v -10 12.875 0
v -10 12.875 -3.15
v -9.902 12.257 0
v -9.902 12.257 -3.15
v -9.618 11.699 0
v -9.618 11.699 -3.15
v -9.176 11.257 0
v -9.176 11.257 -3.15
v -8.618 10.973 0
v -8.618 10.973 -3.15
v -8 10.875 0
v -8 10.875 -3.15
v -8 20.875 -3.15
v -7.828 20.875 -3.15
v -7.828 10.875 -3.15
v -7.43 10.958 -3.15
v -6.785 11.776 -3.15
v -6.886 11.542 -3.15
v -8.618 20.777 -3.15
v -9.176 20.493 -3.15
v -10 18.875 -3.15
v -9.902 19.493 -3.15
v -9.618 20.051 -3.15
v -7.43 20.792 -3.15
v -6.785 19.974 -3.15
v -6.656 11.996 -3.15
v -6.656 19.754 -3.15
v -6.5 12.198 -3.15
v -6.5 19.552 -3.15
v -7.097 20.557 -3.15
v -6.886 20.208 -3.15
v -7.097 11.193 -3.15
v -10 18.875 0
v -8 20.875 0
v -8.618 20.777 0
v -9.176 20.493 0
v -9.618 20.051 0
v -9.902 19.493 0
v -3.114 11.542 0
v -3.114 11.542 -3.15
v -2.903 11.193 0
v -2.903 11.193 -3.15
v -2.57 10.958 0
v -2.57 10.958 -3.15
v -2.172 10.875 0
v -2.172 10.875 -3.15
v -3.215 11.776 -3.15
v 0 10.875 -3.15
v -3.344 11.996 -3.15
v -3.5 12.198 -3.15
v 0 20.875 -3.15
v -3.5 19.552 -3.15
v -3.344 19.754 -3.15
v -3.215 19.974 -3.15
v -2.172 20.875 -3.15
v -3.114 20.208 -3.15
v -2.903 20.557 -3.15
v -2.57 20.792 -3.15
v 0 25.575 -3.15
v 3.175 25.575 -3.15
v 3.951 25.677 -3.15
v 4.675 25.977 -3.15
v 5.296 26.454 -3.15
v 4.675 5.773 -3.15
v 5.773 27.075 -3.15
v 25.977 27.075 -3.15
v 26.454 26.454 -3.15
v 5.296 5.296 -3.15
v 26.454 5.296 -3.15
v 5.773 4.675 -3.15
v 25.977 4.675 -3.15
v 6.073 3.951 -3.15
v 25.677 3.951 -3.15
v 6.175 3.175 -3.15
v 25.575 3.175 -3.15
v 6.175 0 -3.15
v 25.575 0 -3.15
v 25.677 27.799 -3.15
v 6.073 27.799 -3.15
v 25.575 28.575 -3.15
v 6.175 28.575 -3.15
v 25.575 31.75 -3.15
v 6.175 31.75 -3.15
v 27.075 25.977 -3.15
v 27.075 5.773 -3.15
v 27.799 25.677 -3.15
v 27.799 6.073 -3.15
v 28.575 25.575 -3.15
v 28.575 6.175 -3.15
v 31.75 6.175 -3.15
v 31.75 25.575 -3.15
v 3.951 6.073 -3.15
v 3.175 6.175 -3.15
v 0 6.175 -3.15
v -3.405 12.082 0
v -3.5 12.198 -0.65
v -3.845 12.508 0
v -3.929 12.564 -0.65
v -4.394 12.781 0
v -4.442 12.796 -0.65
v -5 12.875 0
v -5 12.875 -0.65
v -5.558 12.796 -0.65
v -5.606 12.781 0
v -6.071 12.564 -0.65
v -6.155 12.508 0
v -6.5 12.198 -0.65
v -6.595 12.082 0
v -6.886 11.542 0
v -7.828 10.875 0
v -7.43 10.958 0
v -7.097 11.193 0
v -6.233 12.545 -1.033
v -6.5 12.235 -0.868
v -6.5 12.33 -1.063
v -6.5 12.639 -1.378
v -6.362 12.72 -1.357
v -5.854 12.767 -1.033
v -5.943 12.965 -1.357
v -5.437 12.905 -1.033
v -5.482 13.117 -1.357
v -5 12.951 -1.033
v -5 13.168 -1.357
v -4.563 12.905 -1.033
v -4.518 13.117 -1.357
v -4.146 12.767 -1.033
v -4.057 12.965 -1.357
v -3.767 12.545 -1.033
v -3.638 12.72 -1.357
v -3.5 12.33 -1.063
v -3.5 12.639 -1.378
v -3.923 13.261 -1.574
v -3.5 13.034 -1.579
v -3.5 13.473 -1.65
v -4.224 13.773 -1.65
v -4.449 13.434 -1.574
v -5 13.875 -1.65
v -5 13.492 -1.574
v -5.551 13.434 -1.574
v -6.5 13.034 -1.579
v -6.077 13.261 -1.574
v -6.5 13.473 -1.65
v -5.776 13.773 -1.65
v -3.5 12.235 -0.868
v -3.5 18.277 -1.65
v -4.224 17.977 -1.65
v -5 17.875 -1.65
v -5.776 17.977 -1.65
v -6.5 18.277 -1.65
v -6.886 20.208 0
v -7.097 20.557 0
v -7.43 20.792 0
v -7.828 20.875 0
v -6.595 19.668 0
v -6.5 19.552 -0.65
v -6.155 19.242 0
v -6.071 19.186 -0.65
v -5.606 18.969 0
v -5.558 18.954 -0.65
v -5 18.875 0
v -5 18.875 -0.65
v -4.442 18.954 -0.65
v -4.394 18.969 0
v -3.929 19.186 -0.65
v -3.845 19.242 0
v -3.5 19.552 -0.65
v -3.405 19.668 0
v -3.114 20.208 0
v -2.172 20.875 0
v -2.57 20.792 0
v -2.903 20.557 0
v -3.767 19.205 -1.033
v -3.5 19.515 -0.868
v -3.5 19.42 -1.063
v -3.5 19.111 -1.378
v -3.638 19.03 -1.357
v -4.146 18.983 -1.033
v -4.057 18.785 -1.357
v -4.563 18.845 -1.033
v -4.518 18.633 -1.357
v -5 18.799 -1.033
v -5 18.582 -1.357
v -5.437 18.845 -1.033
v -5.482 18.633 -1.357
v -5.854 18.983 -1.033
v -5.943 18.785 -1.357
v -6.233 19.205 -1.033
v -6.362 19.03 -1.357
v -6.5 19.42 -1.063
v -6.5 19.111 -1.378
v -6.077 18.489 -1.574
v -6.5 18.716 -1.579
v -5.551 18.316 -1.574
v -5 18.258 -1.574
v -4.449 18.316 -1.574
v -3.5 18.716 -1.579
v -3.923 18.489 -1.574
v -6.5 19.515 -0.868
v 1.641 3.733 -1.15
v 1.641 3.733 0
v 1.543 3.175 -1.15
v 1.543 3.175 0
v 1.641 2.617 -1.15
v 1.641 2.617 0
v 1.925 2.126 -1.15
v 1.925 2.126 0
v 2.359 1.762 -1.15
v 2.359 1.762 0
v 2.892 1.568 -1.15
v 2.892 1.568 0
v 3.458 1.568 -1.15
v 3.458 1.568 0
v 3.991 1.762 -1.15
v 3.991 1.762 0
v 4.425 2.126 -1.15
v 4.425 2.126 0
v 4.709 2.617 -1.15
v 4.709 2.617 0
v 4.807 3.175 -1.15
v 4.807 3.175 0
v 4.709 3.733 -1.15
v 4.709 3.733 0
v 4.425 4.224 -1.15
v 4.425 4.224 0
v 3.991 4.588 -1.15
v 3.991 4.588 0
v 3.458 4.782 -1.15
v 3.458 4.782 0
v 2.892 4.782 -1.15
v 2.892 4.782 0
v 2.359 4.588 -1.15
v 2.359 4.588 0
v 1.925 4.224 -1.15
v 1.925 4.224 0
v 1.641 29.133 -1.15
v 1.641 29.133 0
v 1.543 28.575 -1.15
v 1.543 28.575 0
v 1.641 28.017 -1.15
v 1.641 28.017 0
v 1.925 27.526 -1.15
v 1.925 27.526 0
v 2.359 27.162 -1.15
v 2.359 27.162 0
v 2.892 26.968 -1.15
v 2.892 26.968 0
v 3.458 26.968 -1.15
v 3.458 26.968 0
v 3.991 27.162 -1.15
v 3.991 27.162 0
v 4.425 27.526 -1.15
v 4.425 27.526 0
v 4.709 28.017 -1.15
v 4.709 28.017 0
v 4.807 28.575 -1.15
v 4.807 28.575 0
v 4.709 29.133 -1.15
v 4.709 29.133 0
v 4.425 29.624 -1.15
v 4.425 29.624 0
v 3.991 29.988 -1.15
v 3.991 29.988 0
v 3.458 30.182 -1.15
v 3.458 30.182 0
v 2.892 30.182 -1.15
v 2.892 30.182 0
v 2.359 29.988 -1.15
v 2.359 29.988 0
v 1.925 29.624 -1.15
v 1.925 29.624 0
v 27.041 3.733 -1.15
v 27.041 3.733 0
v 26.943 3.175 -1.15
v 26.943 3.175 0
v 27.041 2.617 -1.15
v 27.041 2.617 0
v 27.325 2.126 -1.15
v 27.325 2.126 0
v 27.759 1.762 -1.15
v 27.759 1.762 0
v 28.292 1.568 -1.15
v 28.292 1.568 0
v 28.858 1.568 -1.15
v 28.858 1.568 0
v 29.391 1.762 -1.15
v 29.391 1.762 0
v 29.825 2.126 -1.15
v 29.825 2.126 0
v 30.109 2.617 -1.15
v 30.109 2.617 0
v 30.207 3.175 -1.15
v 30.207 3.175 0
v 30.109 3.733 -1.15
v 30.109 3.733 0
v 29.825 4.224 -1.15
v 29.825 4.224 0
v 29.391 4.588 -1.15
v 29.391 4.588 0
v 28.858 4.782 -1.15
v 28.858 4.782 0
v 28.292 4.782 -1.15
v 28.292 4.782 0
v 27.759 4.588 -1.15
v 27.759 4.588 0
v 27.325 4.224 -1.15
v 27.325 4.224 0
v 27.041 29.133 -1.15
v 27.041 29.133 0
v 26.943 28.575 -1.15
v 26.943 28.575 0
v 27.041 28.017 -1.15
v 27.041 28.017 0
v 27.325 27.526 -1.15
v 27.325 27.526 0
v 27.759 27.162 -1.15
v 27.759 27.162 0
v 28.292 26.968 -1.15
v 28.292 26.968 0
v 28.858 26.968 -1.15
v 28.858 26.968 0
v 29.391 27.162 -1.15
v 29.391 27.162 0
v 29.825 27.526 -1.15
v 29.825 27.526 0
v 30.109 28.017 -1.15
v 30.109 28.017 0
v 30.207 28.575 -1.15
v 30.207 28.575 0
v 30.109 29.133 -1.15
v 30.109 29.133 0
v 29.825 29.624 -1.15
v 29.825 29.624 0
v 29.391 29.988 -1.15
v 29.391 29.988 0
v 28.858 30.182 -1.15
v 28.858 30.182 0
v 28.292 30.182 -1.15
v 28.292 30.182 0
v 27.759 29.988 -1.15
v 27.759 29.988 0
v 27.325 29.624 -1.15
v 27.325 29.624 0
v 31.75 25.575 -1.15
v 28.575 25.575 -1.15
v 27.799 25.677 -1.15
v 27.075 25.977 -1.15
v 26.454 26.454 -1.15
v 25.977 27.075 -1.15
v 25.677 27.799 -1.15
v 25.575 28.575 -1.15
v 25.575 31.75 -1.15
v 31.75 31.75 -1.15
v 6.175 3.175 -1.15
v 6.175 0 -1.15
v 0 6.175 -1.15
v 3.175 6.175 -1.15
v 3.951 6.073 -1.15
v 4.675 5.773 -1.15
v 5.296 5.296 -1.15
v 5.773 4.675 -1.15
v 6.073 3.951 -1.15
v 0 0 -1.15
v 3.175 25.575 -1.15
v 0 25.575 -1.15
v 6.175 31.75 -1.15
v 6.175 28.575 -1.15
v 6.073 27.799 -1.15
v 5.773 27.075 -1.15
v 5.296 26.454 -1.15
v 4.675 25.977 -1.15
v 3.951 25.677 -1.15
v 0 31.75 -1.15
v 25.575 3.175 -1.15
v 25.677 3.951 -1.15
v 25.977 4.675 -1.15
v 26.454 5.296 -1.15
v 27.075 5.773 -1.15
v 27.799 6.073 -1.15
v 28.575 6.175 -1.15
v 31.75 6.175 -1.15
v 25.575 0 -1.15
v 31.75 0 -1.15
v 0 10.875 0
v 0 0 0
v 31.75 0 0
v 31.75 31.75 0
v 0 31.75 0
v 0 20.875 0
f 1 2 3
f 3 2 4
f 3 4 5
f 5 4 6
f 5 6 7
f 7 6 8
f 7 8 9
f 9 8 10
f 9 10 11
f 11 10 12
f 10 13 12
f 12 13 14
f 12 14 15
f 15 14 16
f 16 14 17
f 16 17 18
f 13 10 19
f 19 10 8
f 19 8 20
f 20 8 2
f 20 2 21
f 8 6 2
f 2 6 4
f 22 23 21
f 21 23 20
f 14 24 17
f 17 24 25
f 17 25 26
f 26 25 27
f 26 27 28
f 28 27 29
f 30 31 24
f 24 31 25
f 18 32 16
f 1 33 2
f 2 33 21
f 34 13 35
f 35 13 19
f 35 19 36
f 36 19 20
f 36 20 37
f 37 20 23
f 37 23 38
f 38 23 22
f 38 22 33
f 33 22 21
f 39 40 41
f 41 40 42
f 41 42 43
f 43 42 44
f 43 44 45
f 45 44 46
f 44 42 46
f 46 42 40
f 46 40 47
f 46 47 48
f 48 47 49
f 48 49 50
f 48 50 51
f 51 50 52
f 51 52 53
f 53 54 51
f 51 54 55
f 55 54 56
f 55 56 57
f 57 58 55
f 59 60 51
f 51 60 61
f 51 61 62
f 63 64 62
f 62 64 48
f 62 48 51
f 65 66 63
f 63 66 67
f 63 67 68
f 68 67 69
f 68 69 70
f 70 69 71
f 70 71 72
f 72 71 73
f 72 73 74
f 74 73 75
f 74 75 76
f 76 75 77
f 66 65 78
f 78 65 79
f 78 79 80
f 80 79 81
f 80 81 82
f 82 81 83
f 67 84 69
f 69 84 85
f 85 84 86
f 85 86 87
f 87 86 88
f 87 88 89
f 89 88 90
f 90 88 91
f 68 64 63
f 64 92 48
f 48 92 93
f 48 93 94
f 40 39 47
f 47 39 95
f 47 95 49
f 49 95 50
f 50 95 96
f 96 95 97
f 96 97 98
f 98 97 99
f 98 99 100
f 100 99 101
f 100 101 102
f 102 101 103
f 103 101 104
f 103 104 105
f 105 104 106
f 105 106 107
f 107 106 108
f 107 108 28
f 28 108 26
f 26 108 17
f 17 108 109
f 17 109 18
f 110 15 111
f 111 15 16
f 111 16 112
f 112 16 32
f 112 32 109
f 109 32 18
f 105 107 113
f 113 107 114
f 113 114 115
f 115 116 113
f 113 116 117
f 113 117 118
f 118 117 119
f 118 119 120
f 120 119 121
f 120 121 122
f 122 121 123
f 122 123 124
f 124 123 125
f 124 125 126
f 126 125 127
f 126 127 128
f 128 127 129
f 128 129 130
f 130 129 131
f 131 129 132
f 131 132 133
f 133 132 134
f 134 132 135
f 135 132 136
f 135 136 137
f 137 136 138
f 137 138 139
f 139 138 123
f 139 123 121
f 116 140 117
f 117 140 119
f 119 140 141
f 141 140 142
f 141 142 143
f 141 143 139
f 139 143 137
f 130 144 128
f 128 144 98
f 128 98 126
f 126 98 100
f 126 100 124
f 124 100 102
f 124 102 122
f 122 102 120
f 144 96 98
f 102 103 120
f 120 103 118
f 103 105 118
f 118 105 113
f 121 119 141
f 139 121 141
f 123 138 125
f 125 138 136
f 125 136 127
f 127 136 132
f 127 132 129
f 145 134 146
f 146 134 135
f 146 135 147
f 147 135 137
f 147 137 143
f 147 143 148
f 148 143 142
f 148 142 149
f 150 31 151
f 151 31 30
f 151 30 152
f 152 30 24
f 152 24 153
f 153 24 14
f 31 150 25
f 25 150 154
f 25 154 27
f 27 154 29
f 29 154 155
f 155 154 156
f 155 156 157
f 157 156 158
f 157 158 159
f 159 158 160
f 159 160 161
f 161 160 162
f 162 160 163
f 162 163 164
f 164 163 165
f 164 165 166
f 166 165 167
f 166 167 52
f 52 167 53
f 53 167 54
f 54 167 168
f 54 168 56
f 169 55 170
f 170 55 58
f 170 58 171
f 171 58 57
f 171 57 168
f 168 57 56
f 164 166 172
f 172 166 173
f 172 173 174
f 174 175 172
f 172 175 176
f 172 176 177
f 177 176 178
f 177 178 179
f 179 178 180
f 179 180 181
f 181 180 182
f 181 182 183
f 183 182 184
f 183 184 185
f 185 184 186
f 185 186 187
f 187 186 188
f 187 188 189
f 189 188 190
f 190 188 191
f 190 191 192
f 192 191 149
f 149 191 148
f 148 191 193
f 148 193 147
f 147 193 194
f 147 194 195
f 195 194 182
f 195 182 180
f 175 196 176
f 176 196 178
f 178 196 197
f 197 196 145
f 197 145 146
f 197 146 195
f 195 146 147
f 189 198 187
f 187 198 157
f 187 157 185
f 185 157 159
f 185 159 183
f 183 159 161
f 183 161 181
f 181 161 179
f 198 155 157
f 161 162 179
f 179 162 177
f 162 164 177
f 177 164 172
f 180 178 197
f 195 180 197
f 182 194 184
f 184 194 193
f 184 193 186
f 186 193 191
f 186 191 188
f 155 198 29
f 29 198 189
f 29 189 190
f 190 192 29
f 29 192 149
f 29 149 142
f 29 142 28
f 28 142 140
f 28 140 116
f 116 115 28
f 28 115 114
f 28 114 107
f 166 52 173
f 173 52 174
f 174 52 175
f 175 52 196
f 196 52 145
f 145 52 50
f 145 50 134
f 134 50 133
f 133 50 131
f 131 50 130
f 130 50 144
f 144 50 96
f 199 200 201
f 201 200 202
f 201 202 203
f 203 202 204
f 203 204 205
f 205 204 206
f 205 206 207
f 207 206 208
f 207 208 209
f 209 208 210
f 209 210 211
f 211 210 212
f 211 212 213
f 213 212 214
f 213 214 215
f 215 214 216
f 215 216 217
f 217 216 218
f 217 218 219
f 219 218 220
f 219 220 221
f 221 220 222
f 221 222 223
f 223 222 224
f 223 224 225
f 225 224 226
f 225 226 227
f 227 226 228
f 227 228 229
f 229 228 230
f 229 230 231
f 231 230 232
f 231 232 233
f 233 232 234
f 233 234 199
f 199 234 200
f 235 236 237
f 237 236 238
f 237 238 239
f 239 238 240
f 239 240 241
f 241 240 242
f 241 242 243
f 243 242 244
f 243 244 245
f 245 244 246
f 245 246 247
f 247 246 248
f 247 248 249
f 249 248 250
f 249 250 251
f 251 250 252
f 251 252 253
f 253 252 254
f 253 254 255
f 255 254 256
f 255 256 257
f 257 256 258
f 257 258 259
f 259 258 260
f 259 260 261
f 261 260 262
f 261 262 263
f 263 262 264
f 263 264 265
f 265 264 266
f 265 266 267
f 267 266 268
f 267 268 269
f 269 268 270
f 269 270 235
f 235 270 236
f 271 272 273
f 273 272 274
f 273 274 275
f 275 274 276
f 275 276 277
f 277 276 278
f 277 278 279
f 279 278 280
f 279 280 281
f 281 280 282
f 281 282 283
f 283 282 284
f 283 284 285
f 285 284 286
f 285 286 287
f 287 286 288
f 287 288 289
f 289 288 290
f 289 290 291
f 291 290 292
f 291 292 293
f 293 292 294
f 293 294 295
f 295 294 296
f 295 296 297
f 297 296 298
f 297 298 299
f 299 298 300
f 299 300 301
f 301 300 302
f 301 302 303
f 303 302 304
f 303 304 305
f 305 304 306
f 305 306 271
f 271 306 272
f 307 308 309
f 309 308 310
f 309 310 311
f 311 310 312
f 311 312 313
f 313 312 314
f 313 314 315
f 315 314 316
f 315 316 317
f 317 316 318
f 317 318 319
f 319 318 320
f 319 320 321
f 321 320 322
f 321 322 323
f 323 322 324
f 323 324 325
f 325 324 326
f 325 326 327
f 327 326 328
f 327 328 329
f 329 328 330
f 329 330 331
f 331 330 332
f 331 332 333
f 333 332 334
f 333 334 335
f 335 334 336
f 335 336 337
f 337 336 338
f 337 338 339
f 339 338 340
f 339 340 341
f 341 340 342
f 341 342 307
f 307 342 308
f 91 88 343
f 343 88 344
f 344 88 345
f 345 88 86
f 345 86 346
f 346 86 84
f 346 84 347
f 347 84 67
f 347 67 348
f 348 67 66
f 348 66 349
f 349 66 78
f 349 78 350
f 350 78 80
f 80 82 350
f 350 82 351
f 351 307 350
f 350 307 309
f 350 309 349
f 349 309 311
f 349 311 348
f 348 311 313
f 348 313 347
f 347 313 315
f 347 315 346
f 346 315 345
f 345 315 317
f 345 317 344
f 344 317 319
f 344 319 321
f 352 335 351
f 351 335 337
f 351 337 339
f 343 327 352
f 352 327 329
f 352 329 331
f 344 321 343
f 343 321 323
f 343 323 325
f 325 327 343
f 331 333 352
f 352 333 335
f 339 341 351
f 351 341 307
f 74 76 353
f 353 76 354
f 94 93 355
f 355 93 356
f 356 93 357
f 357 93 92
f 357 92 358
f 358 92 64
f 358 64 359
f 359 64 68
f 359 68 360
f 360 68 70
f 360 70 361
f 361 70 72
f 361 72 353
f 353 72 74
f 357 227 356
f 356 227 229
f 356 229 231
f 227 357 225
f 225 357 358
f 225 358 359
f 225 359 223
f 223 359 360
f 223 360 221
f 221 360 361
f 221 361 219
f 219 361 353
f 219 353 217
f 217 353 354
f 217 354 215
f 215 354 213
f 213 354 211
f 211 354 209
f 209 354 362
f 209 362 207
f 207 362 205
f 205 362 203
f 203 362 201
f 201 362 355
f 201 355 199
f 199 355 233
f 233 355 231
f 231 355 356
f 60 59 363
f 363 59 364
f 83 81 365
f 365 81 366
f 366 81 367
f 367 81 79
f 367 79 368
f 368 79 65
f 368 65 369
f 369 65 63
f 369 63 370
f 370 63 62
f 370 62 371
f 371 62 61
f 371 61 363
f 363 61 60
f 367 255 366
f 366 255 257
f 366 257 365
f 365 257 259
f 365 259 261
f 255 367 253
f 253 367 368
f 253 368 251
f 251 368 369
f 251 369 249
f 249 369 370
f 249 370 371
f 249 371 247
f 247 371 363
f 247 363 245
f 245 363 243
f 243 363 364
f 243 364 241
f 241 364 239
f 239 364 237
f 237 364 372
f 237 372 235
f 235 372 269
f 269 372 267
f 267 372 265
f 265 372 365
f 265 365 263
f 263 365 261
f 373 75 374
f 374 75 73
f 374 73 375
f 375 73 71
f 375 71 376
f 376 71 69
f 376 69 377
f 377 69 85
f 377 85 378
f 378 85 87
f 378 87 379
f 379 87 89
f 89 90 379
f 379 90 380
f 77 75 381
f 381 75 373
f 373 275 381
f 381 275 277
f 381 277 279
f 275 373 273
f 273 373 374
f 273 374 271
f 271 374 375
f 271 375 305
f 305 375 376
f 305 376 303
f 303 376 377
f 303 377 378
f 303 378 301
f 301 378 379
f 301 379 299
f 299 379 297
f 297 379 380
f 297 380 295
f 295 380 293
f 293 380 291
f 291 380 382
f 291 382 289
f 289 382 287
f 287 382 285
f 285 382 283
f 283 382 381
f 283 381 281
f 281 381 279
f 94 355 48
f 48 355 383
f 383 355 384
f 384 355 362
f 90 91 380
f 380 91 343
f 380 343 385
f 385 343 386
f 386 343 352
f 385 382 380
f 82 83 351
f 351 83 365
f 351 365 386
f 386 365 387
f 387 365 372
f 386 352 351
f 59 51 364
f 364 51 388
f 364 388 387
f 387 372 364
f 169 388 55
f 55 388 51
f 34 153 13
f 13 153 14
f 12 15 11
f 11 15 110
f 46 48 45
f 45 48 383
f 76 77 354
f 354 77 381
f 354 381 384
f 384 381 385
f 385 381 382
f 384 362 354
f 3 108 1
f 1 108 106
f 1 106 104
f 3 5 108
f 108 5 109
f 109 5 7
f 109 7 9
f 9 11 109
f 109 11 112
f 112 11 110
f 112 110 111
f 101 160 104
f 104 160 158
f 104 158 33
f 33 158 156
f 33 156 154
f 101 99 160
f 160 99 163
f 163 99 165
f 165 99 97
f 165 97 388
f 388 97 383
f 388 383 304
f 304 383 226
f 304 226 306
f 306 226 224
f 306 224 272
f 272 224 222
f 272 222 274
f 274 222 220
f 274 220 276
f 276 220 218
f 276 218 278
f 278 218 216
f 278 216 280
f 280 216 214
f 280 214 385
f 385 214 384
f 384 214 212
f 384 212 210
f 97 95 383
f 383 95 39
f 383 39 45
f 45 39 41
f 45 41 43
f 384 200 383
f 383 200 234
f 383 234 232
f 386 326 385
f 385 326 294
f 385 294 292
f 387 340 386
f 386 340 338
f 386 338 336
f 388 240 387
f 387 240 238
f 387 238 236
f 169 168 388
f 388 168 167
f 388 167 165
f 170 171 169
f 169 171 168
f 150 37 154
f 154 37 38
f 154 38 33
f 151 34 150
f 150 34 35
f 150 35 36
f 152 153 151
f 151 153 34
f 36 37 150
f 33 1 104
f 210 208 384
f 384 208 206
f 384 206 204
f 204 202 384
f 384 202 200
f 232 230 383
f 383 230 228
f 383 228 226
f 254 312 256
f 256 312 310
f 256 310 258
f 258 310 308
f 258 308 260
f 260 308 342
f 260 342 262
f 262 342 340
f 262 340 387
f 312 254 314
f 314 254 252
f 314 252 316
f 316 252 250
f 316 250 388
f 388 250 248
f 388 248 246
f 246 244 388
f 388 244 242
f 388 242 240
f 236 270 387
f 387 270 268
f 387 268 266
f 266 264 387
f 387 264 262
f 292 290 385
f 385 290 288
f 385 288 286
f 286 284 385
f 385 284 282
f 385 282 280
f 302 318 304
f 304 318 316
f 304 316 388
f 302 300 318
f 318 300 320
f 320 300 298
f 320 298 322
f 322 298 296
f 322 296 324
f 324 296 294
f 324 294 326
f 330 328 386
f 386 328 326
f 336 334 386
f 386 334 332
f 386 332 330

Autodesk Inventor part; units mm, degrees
ref_plane "YZ Plane" through (0, 0, 0) normal (1, 0, 0) x (0, 1, 0)
ref_plane "XZ Plane" through (0, 0, 0) normal (0, 1, 0) x (-1, 0, 0)
ref_plane "XY Plane" through (0, 0, 0) normal (0, 0, 1) x (1, 0, 0)
sketch "Sketch1" plane through (0, 0, 0) normal (0, 0, 1) x (1, 0, 0)
  line L0 (0, 0) -> (31.75, 0)
  line L1 (31.75, 0) -> (31.75, 31.75)
  line L2 (31.75, 31.75) -> (0, 31.75)
  line L3 (0, 31.75) -> (0, 0)
  line L4 (0, 0) -> (0, 31.75)
  line L5 (0, 20.875) -> (-10, 20.875)
  line L6 (-10, 20.875) -> (-10, 10.875)
  line L7 (-10, 10.875) -> (0, 10.875)
  line L8 (0, 10.875) -> (0, 20.875)
  circle A0 centre (-5, 20.875) radius 2
  circle A1 centre (-5, 10.875) radius 2
  point P0 (-10, 15.875)
  point P1 (0, 15.875)
  point P2 (-7, 10.875)
  point P3 (-3, 10.875)
  point P4 (-3, 20.875)
  point P5 (-7, 20.875)
  dimension "d0" = 31.75
  dimension "d1" = 31.75
  dimension "d19" = 10
  dimension "d20" = 4
  dimension "d21" = 4
  dimension "d22" = 10
  dimension "d23" = 0
extrude "Extrusion1" add sketch "Sketch1" against normal blind 3.15 contours L3 L2 L1 L0 | L7 A1 L6 L5 A0 L3
sketch "Sketch2" plane through (0, 0, -3.15) normal (0, 0, -1) x (-1, 0, 0)
  circle A0 centre (-28.575, 28.575) radius 1.632
  circle A1 centre (-28.575, 28.575) radius 3
  line L0 (-28.575, 28.575) -> (-3.175, 28.575) construction
  line L1 (-3.175, 28.575) -> (-3.175, 3.175) construction
  line L2 (-3.175, 3.175) -> (-28.575, 3.175) construction
  line L3 (-28.575, 3.175) -> (-28.575, 28.575) construction
  line L4 (-31.75, 31.75) -> (-31.75, 0) projected
  line L5 (0, 31.75) -> (-31.75, 31.75) projected
  line L6 (-25.575, 28.575) -> (-25.575, 31.75)
  line L7 (-28.575, 25.575) -> (-31.75, 25.575)
  line L8 (-15.875, 28.575) -> (-15.875, 3.175) construction
  line L9 (-3.175, 15.875) -> (-28.575, 15.875) construction
  line L10 (-25.575, 3.175) -> (-25.575, 0)
  circle A2 centre (-28.575, 3.175) radius 1.632
  circle A3 centre (-28.575, 3.175) radius 3
  line L11 (-28.575, 6.175) -> (-31.75, 6.175)
  line L12 (-3.175, 6.175) -> (0, 6.175)
  circle A4 centre (-3.175, 3.175) radius 1.632
  circle A5 centre (-3.175, 3.175) radius 3
  line L13 (-6.175, 3.175) -> (-6.175, 0)
  line L14 (-6.175, 28.575) -> (-6.175, 31.75)
  circle A6 centre (-3.175, 28.575) radius 1.632
  circle A7 centre (-3.175, 28.575) radius 3
  line L15 (-3.175, 25.575) -> (0, 25.575)
  line L16 (-31.75, 0) -> (0, 0) projected
  line L17 (0, 20.875) -> (0, 31.75) projected
  line L18 (0, 0) -> (0, 10.875) projected
  point P0 (-31.75, 15.875)
  point P1 (10, 31.75)
  point P2 (-15.875, 15.875)
  point P3 (-15.875, 15.875)
  point P4 (10, 0)
  dimension "d5" = 3.2639
  dimension "d6" = 6
  dimension "d7" = 25.4
  dimension "d8" = 25.4
  dimension "d9" = 3.175
  dimension "d10" = 3.175
  dimension "d13" = 360
extrude "Extrusion2" cut sketch "Sketch2" against normal blind 2
extrude "Extrusion3" cut sketch "Sketch2" against normal through all contours A0 | A2 | A4 | A6
sketch "Sketch3" plane through (0, 0, -3.15) normal (0, 0, -1) x (-1, 0, 0)
  line L0 (3.5, 20.875) -> (6.5, 20.875)
  line L1 (6.5, 20.875) -> (6.5, 10.875)
  line L2 (6.5, 10.875) -> (3.5, 10.875)
  line L3 (3.5, 10.875) -> (3.5, 20.875)
  line L4 (7, 10.875) -> (10, 10.875) projected
  point P0 (0, 0)
  point P1 (3, 20.875)
  point P2 (3, 10.875)
  dimension "d26" = 0.5
  dimension "d27" = 0.5
  dimension "d28" = 3
extrude "Extrusion4" cut sketch "Sketch3" against normal blind 1.5
fillet "Fillet1" radius 1 6 edges at (-5, 18.875, -1.65) (-3, 20.875, -1.575) (-7, 20.875, -1.575) (-5, 12.875, -1.65) (-7, 10.875, -1.575) (-3, 10.875, -1.575)
fillet "Fillet2" radius 2 2 edges at (-10, 20.875, -1.575) (-10, 10.875, -1.575)
properties part number "lna605_base"
